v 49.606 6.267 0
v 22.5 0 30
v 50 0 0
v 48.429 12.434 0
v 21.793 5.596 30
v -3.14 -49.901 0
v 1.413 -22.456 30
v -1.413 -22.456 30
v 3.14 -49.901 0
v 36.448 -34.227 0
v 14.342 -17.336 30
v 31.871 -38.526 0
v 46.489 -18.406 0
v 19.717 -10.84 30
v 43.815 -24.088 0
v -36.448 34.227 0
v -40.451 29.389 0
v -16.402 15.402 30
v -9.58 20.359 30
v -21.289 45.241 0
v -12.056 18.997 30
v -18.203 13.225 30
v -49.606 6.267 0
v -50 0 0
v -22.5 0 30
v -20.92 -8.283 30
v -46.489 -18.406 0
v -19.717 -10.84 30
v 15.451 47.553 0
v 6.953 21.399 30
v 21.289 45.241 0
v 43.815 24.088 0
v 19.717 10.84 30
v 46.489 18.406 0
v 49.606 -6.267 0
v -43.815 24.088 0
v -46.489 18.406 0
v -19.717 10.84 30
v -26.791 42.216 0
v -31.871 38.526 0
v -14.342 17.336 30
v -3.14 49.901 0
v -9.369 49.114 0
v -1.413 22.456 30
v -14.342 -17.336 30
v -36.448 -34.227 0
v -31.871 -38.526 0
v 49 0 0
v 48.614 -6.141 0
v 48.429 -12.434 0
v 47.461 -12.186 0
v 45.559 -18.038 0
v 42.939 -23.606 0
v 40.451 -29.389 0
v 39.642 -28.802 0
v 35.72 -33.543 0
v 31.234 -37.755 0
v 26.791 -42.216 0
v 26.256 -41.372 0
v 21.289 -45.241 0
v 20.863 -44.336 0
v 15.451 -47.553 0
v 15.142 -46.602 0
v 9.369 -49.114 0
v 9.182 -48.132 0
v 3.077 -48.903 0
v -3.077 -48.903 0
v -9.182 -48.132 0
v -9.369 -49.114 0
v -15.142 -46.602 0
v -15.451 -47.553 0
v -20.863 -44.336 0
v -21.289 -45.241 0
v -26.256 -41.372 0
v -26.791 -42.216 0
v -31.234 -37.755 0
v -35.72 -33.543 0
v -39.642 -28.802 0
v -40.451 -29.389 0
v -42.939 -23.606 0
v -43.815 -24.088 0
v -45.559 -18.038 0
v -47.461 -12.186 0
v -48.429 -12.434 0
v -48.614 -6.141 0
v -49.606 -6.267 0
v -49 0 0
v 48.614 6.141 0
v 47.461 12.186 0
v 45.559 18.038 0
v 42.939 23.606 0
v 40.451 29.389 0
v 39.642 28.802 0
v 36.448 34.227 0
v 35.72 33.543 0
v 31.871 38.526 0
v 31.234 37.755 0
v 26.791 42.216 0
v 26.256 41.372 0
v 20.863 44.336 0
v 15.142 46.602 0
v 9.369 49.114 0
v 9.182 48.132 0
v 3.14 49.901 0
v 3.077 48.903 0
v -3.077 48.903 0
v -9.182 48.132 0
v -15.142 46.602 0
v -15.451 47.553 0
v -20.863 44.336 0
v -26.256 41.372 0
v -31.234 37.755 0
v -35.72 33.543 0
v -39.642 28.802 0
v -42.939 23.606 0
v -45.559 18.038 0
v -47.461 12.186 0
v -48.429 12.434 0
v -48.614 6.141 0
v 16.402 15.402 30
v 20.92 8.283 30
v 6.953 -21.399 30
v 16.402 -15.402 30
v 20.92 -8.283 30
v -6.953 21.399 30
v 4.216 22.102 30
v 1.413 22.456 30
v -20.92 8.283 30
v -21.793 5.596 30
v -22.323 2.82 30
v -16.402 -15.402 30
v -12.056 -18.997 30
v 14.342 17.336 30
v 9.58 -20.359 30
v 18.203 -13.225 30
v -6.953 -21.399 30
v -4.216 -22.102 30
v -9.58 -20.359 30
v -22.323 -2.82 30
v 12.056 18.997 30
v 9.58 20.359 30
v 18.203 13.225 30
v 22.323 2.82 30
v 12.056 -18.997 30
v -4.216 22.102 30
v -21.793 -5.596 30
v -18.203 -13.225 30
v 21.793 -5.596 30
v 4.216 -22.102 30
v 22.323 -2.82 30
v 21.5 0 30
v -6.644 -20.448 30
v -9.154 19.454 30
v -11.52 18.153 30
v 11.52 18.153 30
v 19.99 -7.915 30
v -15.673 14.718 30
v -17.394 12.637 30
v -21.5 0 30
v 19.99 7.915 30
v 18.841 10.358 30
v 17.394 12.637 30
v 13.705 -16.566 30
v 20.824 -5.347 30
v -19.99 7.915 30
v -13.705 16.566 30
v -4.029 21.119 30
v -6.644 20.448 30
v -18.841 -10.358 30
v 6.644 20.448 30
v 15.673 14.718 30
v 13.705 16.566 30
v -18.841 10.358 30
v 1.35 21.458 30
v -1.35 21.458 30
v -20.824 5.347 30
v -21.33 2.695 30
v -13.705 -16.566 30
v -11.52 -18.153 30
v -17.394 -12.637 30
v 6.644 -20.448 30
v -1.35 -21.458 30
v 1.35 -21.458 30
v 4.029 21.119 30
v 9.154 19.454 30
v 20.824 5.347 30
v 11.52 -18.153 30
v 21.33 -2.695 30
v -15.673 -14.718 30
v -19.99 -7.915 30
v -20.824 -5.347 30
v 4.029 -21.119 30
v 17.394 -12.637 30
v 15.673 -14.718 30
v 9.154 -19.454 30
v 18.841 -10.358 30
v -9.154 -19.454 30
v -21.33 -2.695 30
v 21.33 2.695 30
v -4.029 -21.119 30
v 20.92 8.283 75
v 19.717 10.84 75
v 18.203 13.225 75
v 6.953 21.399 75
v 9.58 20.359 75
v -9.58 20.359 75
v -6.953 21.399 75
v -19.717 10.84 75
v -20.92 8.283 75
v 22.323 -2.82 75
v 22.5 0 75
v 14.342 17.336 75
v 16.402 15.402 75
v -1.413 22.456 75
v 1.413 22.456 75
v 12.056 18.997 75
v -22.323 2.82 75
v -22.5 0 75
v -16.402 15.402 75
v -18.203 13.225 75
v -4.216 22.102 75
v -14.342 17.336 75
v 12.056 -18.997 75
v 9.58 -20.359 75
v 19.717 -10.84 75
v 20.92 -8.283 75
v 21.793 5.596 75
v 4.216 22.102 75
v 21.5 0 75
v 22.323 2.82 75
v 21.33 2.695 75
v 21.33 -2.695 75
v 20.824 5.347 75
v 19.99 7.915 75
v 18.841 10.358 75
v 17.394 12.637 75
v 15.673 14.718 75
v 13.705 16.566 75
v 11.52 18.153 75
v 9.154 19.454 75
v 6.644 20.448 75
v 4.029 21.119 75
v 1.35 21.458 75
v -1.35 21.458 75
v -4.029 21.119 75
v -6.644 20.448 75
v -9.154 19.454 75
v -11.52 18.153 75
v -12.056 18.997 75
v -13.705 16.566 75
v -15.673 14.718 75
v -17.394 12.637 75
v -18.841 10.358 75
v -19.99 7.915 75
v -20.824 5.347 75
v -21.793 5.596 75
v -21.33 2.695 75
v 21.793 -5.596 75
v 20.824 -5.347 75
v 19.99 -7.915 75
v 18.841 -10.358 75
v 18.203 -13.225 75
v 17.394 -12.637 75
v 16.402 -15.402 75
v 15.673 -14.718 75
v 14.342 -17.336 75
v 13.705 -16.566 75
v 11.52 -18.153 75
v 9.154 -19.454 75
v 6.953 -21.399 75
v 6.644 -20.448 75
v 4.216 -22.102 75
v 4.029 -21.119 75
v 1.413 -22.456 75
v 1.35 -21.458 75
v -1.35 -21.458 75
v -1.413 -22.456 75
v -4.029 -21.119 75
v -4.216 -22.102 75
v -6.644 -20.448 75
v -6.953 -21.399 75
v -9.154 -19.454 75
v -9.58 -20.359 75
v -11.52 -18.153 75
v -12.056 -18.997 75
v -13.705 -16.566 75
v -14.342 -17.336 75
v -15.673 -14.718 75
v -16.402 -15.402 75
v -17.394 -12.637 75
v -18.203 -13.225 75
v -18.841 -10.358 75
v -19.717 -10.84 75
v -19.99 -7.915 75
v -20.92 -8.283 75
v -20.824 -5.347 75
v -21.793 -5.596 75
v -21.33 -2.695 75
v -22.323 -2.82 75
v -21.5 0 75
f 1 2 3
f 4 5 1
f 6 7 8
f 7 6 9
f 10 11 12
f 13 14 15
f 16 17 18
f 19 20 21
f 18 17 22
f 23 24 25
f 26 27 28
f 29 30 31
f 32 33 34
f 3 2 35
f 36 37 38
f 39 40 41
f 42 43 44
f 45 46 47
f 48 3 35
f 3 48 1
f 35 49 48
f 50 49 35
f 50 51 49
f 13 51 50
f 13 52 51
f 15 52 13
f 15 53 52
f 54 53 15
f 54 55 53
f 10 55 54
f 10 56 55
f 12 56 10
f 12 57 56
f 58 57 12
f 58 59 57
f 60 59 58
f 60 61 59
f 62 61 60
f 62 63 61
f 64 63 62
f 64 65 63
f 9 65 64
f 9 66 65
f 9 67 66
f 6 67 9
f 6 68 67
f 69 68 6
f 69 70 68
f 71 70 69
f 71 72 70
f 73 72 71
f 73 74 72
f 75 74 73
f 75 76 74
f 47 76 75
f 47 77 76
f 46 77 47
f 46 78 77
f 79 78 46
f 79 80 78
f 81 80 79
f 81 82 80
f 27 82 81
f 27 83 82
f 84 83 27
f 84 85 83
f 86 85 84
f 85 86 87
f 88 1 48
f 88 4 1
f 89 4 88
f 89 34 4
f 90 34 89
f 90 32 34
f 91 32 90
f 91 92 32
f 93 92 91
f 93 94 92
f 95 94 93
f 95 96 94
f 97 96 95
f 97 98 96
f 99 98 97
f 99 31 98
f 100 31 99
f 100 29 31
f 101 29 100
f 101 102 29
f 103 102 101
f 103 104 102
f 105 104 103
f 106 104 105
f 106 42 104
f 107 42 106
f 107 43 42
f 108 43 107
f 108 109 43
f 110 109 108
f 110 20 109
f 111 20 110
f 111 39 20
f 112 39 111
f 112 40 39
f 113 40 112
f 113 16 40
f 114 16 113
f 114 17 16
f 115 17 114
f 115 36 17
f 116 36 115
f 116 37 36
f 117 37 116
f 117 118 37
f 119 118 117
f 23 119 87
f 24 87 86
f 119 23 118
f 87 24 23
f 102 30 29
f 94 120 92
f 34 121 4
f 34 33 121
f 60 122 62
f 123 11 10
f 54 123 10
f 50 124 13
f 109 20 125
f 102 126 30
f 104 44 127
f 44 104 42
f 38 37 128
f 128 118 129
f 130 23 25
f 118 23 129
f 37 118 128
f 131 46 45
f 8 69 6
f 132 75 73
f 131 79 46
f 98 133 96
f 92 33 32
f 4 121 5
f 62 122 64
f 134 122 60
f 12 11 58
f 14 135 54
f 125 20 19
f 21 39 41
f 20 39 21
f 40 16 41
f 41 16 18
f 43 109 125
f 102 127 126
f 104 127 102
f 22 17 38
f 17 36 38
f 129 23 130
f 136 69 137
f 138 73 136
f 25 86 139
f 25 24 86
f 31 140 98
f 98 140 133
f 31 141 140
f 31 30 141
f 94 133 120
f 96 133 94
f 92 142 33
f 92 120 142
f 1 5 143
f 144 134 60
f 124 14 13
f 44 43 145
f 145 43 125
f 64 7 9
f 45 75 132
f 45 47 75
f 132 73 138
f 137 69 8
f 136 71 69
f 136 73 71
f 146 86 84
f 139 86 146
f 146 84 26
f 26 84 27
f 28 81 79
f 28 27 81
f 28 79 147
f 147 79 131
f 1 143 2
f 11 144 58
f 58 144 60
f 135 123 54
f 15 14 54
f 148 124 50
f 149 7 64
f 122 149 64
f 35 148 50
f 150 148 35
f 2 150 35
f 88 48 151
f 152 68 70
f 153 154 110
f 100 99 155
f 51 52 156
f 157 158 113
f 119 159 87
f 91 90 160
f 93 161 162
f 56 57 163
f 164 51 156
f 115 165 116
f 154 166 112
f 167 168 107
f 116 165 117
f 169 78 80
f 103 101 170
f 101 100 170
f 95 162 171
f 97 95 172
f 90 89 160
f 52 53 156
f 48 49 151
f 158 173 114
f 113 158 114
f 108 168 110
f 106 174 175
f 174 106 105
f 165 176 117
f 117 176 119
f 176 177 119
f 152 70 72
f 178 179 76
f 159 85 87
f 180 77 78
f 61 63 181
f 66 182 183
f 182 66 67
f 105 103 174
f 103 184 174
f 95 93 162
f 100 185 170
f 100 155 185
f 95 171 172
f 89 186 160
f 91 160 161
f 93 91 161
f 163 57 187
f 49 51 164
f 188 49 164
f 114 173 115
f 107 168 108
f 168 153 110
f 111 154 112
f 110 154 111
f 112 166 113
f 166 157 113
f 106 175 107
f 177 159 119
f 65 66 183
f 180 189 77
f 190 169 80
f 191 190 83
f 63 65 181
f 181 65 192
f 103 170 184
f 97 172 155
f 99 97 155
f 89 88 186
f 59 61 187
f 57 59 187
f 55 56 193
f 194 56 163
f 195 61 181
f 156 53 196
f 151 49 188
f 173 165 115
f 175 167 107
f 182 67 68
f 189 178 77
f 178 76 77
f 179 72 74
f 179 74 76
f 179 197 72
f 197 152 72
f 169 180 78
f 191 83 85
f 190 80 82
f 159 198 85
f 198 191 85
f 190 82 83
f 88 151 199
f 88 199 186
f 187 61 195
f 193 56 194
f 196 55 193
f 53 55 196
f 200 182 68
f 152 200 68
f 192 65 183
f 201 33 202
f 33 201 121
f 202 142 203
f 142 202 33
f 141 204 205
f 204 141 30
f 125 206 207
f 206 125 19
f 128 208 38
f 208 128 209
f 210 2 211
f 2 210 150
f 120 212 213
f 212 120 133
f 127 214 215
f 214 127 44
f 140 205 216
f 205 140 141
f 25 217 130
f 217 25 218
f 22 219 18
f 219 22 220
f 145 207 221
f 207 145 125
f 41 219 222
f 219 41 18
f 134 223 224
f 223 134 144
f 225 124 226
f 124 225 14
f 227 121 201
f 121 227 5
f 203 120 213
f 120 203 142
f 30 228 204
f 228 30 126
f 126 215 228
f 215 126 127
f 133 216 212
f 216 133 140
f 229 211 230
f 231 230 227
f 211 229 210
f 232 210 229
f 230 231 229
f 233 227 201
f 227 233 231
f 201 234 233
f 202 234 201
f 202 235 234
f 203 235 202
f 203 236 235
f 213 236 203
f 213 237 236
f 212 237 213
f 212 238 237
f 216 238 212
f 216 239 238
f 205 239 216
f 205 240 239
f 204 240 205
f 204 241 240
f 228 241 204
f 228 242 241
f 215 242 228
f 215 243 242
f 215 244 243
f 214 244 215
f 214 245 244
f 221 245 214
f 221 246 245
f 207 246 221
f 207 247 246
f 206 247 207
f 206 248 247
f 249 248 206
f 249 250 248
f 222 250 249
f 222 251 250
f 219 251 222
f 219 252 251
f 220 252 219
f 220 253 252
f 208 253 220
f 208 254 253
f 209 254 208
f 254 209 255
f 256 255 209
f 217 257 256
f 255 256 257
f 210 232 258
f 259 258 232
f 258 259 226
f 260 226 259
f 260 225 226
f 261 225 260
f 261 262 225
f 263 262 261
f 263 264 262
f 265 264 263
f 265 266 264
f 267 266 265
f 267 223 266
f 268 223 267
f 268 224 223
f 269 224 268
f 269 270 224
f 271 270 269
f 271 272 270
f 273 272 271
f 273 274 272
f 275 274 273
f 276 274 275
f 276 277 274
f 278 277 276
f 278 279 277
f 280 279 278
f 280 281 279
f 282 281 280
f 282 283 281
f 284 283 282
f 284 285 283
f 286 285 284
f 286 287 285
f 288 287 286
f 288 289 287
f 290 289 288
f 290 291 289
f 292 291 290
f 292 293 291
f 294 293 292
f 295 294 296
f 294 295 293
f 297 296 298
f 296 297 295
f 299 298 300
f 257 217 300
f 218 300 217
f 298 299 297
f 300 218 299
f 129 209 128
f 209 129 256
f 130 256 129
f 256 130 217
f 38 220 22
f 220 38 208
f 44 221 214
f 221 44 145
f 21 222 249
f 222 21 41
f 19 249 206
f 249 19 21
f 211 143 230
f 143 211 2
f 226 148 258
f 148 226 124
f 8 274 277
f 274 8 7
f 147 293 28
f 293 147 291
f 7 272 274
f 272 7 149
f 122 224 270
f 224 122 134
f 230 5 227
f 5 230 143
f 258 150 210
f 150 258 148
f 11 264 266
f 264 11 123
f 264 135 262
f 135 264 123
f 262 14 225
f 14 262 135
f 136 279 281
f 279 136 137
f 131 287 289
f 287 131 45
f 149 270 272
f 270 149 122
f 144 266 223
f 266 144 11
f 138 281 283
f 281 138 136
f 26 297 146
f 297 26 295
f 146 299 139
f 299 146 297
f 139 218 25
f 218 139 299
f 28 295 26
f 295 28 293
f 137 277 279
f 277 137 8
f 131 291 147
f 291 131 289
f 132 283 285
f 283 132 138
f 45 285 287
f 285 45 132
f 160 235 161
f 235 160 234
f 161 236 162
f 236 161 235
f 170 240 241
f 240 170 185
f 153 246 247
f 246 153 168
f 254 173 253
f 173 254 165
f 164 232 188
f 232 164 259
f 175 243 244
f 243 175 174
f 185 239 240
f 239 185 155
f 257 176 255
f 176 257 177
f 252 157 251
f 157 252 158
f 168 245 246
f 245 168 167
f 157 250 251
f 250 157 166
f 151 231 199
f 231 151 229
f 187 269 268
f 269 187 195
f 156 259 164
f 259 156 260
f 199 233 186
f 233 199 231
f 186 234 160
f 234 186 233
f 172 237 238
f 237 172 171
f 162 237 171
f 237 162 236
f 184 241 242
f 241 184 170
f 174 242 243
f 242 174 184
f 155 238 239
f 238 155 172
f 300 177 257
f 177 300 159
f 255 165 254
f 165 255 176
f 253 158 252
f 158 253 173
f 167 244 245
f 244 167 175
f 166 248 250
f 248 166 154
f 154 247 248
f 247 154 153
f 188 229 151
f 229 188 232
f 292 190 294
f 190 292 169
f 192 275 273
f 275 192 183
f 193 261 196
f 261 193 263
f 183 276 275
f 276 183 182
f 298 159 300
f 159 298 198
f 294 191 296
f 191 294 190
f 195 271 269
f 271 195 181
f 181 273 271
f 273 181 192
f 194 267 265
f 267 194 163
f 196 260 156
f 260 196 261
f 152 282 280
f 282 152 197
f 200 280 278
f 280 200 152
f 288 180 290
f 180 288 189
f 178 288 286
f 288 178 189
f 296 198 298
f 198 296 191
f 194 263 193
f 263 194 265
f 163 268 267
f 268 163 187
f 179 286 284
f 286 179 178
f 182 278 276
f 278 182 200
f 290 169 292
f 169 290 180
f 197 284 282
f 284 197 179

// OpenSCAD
$fn = 50;


difference() {
	union() {
		translate(v = [0, 0, 0]) {
			rotate(a = [0, 0, 0]) {
				difference() {
					union() {
						cylinder(h = 30, r1 = 50.0000000000, r2 = 22.5000000000);
					}
					union() {
						cylinder(h = 30, r1 = 49.0000000000, r2 = 21.5000000000);
					}
				}
			}
		}
		translate(v = [0, 0, 30]) {
			rotate(a = [0, 0, 0]) {
				difference() {
					union() {
						cylinder(h = 45, r = 22.5000000000);
					}
					union() {
						cylinder(h = 45, r = 21.5000000000);
					}
				}
			}
		}
	}
	union();
}
